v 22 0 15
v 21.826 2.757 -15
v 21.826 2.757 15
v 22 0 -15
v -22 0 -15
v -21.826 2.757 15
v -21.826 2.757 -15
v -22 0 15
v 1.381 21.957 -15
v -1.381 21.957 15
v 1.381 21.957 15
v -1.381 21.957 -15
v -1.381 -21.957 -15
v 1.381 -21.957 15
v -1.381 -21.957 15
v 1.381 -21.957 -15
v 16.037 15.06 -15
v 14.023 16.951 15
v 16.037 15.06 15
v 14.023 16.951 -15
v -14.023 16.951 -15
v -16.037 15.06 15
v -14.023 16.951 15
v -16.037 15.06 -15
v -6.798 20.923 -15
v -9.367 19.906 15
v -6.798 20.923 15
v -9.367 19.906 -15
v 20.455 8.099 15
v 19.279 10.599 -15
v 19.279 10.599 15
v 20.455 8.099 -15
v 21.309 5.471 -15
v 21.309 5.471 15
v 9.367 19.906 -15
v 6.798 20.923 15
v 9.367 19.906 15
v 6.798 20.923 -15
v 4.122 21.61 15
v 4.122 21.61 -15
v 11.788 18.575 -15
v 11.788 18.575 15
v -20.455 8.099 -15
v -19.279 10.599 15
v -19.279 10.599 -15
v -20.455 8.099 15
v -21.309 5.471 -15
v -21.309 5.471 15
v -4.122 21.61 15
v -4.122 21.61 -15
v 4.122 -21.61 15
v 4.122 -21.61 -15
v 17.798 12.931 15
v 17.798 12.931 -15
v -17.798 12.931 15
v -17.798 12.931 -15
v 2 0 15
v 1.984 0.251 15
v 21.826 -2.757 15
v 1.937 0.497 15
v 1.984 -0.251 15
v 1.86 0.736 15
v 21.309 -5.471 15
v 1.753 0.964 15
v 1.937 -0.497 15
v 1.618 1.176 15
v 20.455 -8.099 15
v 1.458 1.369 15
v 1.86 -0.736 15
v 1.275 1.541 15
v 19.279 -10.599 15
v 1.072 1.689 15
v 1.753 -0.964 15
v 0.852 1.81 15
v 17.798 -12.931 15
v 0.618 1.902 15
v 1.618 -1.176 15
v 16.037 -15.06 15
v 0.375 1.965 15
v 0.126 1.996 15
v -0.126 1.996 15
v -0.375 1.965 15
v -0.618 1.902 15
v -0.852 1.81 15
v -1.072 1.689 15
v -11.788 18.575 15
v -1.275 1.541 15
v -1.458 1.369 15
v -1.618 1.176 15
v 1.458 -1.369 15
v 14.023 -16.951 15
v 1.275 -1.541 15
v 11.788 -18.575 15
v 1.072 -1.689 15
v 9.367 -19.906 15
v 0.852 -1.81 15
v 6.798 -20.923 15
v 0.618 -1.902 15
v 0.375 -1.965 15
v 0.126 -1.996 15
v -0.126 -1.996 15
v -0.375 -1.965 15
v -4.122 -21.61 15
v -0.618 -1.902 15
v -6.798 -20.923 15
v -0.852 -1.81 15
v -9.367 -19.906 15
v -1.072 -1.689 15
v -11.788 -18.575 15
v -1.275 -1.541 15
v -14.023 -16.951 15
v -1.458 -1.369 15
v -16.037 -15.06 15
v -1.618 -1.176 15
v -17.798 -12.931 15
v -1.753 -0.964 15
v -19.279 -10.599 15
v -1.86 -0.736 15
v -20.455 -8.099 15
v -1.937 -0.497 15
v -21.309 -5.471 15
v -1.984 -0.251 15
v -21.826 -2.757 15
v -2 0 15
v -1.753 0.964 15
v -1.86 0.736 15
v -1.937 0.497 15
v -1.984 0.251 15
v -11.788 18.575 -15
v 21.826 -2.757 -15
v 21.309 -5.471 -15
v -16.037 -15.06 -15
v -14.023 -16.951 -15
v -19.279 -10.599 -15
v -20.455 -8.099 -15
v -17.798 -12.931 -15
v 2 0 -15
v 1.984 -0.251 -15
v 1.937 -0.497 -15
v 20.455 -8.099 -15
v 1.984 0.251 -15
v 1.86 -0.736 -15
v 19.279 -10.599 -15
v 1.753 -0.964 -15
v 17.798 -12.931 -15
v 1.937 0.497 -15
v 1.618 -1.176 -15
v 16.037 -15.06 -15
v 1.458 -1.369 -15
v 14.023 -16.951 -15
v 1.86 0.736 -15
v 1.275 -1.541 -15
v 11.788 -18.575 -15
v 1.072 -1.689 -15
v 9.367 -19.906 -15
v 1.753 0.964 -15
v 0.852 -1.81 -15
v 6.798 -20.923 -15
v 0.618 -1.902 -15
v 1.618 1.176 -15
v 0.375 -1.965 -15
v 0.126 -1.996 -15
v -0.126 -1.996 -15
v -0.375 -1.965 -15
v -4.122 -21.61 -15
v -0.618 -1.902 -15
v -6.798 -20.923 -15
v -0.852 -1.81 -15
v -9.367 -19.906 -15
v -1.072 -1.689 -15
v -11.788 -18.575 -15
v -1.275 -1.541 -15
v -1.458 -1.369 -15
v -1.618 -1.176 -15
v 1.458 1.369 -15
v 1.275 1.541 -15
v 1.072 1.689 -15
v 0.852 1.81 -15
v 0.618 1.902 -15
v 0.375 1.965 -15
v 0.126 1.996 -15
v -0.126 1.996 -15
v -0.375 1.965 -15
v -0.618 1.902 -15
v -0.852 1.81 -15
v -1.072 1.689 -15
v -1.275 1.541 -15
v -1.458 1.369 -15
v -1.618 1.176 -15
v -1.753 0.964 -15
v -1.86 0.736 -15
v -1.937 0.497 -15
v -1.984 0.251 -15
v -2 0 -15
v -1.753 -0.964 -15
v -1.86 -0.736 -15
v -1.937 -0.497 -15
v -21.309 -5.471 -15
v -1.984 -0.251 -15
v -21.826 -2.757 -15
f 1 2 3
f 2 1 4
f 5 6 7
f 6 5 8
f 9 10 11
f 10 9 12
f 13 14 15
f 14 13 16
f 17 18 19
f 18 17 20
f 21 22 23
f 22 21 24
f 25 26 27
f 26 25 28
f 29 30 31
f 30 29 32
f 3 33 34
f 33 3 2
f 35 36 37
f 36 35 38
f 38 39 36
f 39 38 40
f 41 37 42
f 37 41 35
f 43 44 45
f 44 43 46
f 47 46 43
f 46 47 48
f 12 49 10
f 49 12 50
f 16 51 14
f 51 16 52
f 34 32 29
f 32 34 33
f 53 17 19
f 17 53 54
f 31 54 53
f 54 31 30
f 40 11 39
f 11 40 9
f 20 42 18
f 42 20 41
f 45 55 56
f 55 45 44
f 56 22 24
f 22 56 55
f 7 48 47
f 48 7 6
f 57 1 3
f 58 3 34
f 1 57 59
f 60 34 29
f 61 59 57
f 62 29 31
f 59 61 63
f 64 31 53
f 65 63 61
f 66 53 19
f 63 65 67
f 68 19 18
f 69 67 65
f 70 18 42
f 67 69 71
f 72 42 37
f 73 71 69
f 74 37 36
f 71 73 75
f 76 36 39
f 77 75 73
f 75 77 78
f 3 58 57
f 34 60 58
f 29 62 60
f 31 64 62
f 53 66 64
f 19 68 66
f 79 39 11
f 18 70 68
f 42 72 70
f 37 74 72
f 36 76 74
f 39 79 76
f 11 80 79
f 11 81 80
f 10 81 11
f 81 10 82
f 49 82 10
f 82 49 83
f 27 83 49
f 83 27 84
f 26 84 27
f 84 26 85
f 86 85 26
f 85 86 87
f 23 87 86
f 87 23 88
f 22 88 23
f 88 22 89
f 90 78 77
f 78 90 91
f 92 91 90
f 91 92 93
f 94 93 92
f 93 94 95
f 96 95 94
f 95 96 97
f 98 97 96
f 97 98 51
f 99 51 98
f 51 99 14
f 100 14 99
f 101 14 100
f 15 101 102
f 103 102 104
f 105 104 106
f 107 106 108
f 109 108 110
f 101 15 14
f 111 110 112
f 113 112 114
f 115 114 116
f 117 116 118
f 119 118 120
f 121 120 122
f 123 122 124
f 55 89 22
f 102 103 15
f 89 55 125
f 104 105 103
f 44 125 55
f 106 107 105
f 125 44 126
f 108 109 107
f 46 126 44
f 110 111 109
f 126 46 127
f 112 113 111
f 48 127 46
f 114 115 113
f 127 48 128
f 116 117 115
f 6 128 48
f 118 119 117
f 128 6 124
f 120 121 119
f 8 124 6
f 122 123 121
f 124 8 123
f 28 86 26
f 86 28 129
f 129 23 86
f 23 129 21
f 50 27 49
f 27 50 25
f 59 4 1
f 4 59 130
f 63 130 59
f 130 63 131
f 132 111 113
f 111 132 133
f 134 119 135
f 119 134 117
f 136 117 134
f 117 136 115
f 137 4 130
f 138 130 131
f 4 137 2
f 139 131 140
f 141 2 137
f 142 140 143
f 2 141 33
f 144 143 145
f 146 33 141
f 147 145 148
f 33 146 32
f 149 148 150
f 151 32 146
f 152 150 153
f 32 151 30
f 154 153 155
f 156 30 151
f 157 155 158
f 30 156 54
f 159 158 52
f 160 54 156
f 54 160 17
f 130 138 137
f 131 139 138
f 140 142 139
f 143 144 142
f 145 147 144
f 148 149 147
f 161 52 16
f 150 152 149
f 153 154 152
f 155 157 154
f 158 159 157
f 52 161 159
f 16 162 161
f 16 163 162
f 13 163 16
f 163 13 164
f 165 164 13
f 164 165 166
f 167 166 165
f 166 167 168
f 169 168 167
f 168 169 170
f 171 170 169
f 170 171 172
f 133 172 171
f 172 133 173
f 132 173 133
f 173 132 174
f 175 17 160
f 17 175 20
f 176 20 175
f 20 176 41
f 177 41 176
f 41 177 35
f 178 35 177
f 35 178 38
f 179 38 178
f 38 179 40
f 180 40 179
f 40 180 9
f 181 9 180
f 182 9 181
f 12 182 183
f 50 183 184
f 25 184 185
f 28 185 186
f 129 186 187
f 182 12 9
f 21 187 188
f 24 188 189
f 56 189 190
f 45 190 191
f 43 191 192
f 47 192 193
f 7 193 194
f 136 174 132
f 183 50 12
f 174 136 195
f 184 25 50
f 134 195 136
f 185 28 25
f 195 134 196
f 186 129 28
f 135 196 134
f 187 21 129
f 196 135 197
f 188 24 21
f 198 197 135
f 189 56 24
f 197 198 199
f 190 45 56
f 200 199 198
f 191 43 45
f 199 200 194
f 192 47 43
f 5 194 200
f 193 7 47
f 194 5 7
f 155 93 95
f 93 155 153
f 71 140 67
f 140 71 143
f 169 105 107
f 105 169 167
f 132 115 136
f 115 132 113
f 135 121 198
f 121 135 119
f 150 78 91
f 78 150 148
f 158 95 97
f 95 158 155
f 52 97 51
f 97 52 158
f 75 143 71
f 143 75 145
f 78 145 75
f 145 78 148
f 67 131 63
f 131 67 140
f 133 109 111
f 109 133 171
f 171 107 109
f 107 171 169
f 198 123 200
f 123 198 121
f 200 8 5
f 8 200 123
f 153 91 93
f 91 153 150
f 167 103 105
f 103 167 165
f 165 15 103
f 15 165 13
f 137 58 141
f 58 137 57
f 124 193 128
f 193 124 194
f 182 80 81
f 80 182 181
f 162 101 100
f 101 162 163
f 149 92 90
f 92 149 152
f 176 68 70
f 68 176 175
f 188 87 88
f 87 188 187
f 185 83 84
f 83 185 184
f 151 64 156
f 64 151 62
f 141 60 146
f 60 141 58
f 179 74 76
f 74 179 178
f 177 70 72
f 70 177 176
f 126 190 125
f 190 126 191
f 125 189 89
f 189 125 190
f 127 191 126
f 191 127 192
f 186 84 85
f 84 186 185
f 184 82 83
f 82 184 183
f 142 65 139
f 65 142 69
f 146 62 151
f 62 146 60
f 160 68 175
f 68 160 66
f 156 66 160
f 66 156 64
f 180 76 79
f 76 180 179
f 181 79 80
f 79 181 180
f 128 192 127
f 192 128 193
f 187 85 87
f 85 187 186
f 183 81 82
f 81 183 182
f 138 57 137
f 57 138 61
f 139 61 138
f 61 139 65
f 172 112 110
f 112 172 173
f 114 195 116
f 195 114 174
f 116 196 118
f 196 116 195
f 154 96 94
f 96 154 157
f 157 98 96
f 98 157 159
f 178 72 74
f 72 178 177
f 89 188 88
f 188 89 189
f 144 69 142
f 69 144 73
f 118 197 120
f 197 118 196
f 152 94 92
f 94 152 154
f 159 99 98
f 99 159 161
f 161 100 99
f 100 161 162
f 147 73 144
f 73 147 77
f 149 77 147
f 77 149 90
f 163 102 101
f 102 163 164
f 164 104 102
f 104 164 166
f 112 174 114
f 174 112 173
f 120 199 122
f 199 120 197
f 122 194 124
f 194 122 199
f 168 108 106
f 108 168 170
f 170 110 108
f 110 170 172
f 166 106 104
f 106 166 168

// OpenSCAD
$fn = 50;


difference() {
	union() {
		translate(v = [0, 0, -15.0000000000]) {
			cylinder(h = 30, r = 22.0000000000);
		}
	}
	union() {
		translate(v = [0, 0, -100.0000000000]) {
			cylinder(h = 200, r = 2.0000000000);
		}
	}
}
